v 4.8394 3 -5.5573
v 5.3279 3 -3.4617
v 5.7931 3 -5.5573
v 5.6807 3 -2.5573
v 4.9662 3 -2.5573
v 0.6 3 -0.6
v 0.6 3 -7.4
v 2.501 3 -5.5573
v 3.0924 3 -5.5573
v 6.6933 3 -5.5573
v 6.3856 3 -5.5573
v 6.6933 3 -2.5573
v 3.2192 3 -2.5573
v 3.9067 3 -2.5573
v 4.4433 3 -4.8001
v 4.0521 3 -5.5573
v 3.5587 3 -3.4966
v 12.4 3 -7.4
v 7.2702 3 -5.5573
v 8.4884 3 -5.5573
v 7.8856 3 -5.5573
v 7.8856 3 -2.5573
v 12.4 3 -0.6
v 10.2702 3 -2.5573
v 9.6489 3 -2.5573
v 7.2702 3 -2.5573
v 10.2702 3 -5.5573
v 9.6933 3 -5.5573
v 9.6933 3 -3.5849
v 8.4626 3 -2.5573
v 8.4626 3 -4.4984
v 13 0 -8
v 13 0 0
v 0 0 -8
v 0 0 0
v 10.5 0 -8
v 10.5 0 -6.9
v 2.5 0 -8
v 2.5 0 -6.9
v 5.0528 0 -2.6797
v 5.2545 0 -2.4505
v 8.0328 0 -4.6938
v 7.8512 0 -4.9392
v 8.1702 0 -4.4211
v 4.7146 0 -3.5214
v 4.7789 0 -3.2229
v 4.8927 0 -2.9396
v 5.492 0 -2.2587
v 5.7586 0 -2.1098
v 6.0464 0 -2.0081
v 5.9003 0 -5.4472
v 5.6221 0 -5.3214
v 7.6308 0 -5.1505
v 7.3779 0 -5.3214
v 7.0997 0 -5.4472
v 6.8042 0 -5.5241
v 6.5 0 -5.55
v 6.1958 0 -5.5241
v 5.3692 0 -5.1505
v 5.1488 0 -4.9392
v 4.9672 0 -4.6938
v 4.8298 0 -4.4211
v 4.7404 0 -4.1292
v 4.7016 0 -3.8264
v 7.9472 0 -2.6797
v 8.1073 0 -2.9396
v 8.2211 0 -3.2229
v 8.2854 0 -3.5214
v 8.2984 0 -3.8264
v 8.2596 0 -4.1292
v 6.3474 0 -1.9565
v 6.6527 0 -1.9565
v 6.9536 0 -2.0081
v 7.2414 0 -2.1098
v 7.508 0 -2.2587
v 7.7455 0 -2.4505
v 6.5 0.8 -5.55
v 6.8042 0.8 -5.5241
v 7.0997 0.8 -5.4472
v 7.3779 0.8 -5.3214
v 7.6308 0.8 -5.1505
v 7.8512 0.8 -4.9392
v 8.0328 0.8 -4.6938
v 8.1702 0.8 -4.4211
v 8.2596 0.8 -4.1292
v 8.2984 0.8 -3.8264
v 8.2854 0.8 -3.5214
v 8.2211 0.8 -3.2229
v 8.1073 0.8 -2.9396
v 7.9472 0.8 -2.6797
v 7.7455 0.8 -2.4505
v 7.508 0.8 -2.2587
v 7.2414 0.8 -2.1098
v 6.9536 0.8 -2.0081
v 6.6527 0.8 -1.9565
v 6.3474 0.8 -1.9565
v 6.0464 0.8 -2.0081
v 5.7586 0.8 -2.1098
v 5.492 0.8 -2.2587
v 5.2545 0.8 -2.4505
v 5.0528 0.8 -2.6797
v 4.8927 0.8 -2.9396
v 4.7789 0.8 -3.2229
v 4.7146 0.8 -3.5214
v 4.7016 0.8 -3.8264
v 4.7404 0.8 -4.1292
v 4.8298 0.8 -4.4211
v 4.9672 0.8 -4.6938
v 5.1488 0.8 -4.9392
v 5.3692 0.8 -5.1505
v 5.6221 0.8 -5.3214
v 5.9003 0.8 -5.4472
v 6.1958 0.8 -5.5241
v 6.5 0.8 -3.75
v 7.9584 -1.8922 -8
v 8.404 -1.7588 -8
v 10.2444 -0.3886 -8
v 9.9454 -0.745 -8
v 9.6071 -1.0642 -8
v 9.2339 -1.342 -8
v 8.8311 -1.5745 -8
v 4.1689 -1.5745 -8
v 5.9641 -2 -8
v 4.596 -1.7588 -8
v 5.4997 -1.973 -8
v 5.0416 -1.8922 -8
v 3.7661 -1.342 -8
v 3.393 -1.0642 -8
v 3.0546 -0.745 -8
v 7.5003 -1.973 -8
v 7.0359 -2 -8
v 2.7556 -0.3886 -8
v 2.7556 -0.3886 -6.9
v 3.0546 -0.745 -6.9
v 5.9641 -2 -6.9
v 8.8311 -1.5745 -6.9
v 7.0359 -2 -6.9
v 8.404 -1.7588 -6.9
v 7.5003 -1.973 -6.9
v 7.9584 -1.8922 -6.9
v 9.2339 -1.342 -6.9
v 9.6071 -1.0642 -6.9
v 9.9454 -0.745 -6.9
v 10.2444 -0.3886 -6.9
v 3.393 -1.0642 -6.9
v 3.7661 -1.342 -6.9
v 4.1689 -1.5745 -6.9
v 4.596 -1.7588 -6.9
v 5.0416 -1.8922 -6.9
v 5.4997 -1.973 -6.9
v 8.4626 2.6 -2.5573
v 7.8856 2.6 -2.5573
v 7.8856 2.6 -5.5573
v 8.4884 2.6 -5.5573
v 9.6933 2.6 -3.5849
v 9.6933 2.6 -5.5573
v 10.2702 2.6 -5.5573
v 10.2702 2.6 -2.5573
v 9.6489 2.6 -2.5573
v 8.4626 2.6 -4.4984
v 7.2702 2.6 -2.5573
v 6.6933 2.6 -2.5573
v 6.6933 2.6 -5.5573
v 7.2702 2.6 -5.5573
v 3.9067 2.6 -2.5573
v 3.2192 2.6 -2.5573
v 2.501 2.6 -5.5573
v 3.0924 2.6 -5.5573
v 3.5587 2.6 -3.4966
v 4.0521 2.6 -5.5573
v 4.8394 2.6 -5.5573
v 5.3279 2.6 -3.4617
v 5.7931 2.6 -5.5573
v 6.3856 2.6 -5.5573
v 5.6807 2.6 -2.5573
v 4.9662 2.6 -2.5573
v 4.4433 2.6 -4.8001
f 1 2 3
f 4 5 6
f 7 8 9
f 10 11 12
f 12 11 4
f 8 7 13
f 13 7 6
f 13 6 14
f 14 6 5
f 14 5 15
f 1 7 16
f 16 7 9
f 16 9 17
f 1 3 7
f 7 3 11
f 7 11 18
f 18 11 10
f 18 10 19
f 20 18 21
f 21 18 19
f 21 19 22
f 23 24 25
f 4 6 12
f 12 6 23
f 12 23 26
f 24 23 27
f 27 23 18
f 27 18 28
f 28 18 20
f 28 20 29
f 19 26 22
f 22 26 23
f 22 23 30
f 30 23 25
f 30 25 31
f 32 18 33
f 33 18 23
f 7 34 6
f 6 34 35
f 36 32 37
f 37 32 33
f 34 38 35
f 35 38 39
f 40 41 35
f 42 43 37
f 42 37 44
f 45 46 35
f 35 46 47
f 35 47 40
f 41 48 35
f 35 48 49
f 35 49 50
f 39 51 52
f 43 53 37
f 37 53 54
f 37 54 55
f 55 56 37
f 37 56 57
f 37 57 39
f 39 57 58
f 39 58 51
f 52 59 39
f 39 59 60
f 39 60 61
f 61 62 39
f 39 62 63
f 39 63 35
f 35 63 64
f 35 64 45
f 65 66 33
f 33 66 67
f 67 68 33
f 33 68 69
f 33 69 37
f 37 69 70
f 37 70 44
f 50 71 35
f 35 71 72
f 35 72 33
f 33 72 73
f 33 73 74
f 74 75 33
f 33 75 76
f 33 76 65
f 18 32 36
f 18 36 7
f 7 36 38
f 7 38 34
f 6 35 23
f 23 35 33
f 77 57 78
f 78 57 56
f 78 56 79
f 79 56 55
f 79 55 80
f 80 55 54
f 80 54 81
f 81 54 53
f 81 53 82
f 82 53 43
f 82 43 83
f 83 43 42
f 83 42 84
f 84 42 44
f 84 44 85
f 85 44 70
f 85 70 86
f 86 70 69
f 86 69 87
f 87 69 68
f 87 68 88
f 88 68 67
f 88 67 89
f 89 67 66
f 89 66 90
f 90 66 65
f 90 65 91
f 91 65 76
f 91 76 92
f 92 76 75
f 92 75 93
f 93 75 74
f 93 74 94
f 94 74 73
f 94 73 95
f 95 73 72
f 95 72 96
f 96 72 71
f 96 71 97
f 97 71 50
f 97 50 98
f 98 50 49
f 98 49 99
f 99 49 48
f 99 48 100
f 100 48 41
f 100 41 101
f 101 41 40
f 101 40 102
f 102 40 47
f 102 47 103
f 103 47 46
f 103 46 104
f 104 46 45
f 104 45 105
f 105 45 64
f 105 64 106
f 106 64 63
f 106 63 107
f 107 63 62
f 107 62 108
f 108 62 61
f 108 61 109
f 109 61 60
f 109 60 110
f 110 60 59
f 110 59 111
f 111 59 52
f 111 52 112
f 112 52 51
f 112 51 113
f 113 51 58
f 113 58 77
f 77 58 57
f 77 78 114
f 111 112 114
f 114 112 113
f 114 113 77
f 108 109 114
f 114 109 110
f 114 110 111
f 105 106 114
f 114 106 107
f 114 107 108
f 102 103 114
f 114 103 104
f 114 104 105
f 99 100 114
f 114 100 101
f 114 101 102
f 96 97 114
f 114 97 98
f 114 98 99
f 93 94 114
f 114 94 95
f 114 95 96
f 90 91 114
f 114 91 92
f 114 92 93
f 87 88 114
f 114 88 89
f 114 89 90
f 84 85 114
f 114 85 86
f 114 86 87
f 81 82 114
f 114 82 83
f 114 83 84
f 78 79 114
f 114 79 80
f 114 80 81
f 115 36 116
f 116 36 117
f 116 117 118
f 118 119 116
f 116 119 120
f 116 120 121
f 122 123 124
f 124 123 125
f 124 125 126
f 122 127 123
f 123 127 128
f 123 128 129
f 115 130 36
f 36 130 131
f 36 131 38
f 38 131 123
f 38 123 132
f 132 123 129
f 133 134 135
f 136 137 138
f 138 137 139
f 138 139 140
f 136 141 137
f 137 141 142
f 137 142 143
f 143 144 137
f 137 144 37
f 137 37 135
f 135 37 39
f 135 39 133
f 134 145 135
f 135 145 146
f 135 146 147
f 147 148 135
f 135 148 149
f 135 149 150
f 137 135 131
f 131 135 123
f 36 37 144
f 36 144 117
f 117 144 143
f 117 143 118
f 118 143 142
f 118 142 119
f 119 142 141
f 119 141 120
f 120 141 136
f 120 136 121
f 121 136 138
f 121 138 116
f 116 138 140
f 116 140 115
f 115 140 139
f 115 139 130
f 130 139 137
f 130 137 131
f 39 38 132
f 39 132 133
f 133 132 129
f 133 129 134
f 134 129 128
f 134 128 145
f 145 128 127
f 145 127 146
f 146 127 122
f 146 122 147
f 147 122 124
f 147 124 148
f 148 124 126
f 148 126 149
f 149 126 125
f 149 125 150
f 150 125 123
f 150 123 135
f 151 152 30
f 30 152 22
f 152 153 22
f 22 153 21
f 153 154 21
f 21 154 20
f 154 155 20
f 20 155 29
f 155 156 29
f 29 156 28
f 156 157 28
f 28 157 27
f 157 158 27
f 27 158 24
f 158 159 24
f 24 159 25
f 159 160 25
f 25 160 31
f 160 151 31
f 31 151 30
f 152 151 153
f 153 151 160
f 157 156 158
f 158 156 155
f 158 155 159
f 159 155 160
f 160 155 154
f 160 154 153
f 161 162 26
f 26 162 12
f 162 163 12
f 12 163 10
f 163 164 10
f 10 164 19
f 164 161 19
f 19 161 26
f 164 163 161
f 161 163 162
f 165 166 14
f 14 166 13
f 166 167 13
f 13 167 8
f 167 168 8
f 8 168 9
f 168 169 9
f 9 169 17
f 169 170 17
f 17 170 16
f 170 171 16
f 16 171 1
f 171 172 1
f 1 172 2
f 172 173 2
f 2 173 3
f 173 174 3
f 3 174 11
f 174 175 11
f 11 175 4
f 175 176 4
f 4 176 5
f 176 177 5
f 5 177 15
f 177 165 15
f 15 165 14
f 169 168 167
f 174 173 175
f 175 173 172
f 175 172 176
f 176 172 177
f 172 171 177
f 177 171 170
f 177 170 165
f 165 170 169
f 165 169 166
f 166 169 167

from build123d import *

# Parameters (mm, degrees)
SKETCH1_W               = 13
SKETCH1_H               = 8
BOSS_EXTRUDE1_DEPTH     = 3
CUT_EXTRUDE1_DEPTH      = 16.556349186
CUT_EXTRUDE1_DEPTH_BACK = 16.556349186
CUT_EXTRUDE2_DEPTH      = 16.556349186
CUT_EXTRUDE2_DEPTH_BACK = 16.556349186
SKETCH4_R               = 1.8
CUT_EXTRUDE3_DEPTH      = 0.8
SKETCH5_W               = 8
SKETCH5_H               = 1.1
BOSS_EXTRUDE2_DEPTH     = 2
FILLET1_R               = 4
SKETCH6_W               = 0.576923077
SKETCH6_H               = 3
CUT_EXTRUDE4_DEPTH      = 0.4


with BuildPart() as part:
    # Sketch1 → Boss-Extrude1 (new body)
    with BuildSketch(Plane(origin=(0, 0, 0), x_dir=(1, 0, 0), z_dir=(0, 1, 0))):
        with Locations((6.5, 4)):
            Rectangle(SKETCH1_W, SKETCH1_H)
    extrude(amount=BOSS_EXTRUDE1_DEPTH)

    # Sketch2 → Cut-Extrude1 (cut, two sides: drawn at the far end of the back side and taken through both)
    with BuildSketch(Plane.XY.offset(-CUT_EXTRUDE1_DEPTH_BACK)):
        Polygon((0, 0), (0.6, 3), (0, 3), align=None)
        Polygon((13, 0), (12.4, 3), (13, 3), align=None)
    extrude(amount=CUT_EXTRUDE1_DEPTH + CUT_EXTRUDE1_DEPTH_BACK, mode=Mode.SUBTRACT)

    # Sketch3 → Cut-Extrude2 (cut, two sides: drawn at the far end of the back side and taken through both)
    with BuildSketch(Plane(origin=(0, 0, 0), x_dir=(0, 0, -1), z_dir=(1, 0, 0)).offset(-CUT_EXTRUDE2_DEPTH_BACK)):
        Polygon((0, 0), (0.6, 3), (0, 3), align=None)
        Polygon((8, 3), (7.4, 3), (8, 0), align=None)
    extrude(amount=CUT_EXTRUDE2_DEPTH + CUT_EXTRUDE2_DEPTH_BACK, mode=Mode.SUBTRACT)

    # Sketch4 → Cut-Extrude3 (cut)
    with BuildSketch(Plane.XZ):
        with Locations(Location((6.50000125, -3.75, 0), (0, 0, 270))):
            Circle(SKETCH4_R)
    extrude(amount=-CUT_EXTRUDE3_DEPTH, mode=Mode.SUBTRACT)

    # Sketch5 → Boss-Extrude2 (add)
    with BuildSketch(Plane.XZ):
        with Locations((6.500011, -7.45)):
            Rectangle(SKETCH5_W, SKETCH5_H)
    extrude(amount=BOSS_EXTRUDE2_DEPTH)

    # Fillet1
    # the kernel refuses this fillet: 4 mm, written as the material it takes off along each edge
    with BuildSketch(Plane(origin=(10.500011, -2, -16.660254038), x_dir=(0, 1, 0), z_dir=(0, 0, 1)), Plane(origin=(2.500011, -2, 1.760254038), x_dir=(0, 1, 0), z_dir=(0, 0, -1))) as fillet1_piece_1:
        with BuildLine():
            CenterArc((4, 3.464101615), FILLET1_R, 180, 60)
            Line((0, 3.464101615), (-0.08, 3.464101615))
            Line((-0.08, 3.464101615), (-0.08, 0))
            Line((-0.08, 0), (0, -0.08))
            ThreePointArc((0, -0.08), (1, -0.08), (1.96, -0.069282032))
            Line((1.96, -0.069282032), (2, 0))
        make_face()
    extrude(amount=18.420508076, mode=Mode.SUBTRACT)

    # Sketch6 → Cut-Extrude4 (cut)
    with BuildSketch(Plane(origin=(0, 3, 0), x_dir=(1, 0, 0), z_dir=(0, 1, 0))):
        Polygon((3.219165588, 2.557267472), (2.50101655, 5.557267472), (3.092362704, 5.557267472), (3.558708858, 3.496570357), (4.052098281, 5.557267472), (4.839357896, 5.557267472), (5.327939627, 3.461714587), (5.793083858, 5.557267472), (6.385631934, 5.557267472), (5.68070405, 2.557267472), (4.966160781, 2.557267472), (4.443324242, 4.800055934), (3.906665588, 2.557267472), align=None)
        with Locations((6.981785781, 4.057267472)):
            Rectangle(SKETCH6_W, SKETCH6_H)
        Polygon((7.885631934, 2.557267472), (7.885631934, 5.557267472), (8.488396358, 5.557267472), (9.693324242, 3.584911703), (9.693324242, 5.557267472), (10.270247319, 5.557267472), (10.270247319, 2.557267472), (9.648853088, 2.557267472), (8.462555011, 4.498373241), (8.462555011, 2.557267472), align=None)
    extrude(amount=-CUT_EXTRUDE4_DEPTH, mode=Mode.SUBTRACT)


solid = part.part
